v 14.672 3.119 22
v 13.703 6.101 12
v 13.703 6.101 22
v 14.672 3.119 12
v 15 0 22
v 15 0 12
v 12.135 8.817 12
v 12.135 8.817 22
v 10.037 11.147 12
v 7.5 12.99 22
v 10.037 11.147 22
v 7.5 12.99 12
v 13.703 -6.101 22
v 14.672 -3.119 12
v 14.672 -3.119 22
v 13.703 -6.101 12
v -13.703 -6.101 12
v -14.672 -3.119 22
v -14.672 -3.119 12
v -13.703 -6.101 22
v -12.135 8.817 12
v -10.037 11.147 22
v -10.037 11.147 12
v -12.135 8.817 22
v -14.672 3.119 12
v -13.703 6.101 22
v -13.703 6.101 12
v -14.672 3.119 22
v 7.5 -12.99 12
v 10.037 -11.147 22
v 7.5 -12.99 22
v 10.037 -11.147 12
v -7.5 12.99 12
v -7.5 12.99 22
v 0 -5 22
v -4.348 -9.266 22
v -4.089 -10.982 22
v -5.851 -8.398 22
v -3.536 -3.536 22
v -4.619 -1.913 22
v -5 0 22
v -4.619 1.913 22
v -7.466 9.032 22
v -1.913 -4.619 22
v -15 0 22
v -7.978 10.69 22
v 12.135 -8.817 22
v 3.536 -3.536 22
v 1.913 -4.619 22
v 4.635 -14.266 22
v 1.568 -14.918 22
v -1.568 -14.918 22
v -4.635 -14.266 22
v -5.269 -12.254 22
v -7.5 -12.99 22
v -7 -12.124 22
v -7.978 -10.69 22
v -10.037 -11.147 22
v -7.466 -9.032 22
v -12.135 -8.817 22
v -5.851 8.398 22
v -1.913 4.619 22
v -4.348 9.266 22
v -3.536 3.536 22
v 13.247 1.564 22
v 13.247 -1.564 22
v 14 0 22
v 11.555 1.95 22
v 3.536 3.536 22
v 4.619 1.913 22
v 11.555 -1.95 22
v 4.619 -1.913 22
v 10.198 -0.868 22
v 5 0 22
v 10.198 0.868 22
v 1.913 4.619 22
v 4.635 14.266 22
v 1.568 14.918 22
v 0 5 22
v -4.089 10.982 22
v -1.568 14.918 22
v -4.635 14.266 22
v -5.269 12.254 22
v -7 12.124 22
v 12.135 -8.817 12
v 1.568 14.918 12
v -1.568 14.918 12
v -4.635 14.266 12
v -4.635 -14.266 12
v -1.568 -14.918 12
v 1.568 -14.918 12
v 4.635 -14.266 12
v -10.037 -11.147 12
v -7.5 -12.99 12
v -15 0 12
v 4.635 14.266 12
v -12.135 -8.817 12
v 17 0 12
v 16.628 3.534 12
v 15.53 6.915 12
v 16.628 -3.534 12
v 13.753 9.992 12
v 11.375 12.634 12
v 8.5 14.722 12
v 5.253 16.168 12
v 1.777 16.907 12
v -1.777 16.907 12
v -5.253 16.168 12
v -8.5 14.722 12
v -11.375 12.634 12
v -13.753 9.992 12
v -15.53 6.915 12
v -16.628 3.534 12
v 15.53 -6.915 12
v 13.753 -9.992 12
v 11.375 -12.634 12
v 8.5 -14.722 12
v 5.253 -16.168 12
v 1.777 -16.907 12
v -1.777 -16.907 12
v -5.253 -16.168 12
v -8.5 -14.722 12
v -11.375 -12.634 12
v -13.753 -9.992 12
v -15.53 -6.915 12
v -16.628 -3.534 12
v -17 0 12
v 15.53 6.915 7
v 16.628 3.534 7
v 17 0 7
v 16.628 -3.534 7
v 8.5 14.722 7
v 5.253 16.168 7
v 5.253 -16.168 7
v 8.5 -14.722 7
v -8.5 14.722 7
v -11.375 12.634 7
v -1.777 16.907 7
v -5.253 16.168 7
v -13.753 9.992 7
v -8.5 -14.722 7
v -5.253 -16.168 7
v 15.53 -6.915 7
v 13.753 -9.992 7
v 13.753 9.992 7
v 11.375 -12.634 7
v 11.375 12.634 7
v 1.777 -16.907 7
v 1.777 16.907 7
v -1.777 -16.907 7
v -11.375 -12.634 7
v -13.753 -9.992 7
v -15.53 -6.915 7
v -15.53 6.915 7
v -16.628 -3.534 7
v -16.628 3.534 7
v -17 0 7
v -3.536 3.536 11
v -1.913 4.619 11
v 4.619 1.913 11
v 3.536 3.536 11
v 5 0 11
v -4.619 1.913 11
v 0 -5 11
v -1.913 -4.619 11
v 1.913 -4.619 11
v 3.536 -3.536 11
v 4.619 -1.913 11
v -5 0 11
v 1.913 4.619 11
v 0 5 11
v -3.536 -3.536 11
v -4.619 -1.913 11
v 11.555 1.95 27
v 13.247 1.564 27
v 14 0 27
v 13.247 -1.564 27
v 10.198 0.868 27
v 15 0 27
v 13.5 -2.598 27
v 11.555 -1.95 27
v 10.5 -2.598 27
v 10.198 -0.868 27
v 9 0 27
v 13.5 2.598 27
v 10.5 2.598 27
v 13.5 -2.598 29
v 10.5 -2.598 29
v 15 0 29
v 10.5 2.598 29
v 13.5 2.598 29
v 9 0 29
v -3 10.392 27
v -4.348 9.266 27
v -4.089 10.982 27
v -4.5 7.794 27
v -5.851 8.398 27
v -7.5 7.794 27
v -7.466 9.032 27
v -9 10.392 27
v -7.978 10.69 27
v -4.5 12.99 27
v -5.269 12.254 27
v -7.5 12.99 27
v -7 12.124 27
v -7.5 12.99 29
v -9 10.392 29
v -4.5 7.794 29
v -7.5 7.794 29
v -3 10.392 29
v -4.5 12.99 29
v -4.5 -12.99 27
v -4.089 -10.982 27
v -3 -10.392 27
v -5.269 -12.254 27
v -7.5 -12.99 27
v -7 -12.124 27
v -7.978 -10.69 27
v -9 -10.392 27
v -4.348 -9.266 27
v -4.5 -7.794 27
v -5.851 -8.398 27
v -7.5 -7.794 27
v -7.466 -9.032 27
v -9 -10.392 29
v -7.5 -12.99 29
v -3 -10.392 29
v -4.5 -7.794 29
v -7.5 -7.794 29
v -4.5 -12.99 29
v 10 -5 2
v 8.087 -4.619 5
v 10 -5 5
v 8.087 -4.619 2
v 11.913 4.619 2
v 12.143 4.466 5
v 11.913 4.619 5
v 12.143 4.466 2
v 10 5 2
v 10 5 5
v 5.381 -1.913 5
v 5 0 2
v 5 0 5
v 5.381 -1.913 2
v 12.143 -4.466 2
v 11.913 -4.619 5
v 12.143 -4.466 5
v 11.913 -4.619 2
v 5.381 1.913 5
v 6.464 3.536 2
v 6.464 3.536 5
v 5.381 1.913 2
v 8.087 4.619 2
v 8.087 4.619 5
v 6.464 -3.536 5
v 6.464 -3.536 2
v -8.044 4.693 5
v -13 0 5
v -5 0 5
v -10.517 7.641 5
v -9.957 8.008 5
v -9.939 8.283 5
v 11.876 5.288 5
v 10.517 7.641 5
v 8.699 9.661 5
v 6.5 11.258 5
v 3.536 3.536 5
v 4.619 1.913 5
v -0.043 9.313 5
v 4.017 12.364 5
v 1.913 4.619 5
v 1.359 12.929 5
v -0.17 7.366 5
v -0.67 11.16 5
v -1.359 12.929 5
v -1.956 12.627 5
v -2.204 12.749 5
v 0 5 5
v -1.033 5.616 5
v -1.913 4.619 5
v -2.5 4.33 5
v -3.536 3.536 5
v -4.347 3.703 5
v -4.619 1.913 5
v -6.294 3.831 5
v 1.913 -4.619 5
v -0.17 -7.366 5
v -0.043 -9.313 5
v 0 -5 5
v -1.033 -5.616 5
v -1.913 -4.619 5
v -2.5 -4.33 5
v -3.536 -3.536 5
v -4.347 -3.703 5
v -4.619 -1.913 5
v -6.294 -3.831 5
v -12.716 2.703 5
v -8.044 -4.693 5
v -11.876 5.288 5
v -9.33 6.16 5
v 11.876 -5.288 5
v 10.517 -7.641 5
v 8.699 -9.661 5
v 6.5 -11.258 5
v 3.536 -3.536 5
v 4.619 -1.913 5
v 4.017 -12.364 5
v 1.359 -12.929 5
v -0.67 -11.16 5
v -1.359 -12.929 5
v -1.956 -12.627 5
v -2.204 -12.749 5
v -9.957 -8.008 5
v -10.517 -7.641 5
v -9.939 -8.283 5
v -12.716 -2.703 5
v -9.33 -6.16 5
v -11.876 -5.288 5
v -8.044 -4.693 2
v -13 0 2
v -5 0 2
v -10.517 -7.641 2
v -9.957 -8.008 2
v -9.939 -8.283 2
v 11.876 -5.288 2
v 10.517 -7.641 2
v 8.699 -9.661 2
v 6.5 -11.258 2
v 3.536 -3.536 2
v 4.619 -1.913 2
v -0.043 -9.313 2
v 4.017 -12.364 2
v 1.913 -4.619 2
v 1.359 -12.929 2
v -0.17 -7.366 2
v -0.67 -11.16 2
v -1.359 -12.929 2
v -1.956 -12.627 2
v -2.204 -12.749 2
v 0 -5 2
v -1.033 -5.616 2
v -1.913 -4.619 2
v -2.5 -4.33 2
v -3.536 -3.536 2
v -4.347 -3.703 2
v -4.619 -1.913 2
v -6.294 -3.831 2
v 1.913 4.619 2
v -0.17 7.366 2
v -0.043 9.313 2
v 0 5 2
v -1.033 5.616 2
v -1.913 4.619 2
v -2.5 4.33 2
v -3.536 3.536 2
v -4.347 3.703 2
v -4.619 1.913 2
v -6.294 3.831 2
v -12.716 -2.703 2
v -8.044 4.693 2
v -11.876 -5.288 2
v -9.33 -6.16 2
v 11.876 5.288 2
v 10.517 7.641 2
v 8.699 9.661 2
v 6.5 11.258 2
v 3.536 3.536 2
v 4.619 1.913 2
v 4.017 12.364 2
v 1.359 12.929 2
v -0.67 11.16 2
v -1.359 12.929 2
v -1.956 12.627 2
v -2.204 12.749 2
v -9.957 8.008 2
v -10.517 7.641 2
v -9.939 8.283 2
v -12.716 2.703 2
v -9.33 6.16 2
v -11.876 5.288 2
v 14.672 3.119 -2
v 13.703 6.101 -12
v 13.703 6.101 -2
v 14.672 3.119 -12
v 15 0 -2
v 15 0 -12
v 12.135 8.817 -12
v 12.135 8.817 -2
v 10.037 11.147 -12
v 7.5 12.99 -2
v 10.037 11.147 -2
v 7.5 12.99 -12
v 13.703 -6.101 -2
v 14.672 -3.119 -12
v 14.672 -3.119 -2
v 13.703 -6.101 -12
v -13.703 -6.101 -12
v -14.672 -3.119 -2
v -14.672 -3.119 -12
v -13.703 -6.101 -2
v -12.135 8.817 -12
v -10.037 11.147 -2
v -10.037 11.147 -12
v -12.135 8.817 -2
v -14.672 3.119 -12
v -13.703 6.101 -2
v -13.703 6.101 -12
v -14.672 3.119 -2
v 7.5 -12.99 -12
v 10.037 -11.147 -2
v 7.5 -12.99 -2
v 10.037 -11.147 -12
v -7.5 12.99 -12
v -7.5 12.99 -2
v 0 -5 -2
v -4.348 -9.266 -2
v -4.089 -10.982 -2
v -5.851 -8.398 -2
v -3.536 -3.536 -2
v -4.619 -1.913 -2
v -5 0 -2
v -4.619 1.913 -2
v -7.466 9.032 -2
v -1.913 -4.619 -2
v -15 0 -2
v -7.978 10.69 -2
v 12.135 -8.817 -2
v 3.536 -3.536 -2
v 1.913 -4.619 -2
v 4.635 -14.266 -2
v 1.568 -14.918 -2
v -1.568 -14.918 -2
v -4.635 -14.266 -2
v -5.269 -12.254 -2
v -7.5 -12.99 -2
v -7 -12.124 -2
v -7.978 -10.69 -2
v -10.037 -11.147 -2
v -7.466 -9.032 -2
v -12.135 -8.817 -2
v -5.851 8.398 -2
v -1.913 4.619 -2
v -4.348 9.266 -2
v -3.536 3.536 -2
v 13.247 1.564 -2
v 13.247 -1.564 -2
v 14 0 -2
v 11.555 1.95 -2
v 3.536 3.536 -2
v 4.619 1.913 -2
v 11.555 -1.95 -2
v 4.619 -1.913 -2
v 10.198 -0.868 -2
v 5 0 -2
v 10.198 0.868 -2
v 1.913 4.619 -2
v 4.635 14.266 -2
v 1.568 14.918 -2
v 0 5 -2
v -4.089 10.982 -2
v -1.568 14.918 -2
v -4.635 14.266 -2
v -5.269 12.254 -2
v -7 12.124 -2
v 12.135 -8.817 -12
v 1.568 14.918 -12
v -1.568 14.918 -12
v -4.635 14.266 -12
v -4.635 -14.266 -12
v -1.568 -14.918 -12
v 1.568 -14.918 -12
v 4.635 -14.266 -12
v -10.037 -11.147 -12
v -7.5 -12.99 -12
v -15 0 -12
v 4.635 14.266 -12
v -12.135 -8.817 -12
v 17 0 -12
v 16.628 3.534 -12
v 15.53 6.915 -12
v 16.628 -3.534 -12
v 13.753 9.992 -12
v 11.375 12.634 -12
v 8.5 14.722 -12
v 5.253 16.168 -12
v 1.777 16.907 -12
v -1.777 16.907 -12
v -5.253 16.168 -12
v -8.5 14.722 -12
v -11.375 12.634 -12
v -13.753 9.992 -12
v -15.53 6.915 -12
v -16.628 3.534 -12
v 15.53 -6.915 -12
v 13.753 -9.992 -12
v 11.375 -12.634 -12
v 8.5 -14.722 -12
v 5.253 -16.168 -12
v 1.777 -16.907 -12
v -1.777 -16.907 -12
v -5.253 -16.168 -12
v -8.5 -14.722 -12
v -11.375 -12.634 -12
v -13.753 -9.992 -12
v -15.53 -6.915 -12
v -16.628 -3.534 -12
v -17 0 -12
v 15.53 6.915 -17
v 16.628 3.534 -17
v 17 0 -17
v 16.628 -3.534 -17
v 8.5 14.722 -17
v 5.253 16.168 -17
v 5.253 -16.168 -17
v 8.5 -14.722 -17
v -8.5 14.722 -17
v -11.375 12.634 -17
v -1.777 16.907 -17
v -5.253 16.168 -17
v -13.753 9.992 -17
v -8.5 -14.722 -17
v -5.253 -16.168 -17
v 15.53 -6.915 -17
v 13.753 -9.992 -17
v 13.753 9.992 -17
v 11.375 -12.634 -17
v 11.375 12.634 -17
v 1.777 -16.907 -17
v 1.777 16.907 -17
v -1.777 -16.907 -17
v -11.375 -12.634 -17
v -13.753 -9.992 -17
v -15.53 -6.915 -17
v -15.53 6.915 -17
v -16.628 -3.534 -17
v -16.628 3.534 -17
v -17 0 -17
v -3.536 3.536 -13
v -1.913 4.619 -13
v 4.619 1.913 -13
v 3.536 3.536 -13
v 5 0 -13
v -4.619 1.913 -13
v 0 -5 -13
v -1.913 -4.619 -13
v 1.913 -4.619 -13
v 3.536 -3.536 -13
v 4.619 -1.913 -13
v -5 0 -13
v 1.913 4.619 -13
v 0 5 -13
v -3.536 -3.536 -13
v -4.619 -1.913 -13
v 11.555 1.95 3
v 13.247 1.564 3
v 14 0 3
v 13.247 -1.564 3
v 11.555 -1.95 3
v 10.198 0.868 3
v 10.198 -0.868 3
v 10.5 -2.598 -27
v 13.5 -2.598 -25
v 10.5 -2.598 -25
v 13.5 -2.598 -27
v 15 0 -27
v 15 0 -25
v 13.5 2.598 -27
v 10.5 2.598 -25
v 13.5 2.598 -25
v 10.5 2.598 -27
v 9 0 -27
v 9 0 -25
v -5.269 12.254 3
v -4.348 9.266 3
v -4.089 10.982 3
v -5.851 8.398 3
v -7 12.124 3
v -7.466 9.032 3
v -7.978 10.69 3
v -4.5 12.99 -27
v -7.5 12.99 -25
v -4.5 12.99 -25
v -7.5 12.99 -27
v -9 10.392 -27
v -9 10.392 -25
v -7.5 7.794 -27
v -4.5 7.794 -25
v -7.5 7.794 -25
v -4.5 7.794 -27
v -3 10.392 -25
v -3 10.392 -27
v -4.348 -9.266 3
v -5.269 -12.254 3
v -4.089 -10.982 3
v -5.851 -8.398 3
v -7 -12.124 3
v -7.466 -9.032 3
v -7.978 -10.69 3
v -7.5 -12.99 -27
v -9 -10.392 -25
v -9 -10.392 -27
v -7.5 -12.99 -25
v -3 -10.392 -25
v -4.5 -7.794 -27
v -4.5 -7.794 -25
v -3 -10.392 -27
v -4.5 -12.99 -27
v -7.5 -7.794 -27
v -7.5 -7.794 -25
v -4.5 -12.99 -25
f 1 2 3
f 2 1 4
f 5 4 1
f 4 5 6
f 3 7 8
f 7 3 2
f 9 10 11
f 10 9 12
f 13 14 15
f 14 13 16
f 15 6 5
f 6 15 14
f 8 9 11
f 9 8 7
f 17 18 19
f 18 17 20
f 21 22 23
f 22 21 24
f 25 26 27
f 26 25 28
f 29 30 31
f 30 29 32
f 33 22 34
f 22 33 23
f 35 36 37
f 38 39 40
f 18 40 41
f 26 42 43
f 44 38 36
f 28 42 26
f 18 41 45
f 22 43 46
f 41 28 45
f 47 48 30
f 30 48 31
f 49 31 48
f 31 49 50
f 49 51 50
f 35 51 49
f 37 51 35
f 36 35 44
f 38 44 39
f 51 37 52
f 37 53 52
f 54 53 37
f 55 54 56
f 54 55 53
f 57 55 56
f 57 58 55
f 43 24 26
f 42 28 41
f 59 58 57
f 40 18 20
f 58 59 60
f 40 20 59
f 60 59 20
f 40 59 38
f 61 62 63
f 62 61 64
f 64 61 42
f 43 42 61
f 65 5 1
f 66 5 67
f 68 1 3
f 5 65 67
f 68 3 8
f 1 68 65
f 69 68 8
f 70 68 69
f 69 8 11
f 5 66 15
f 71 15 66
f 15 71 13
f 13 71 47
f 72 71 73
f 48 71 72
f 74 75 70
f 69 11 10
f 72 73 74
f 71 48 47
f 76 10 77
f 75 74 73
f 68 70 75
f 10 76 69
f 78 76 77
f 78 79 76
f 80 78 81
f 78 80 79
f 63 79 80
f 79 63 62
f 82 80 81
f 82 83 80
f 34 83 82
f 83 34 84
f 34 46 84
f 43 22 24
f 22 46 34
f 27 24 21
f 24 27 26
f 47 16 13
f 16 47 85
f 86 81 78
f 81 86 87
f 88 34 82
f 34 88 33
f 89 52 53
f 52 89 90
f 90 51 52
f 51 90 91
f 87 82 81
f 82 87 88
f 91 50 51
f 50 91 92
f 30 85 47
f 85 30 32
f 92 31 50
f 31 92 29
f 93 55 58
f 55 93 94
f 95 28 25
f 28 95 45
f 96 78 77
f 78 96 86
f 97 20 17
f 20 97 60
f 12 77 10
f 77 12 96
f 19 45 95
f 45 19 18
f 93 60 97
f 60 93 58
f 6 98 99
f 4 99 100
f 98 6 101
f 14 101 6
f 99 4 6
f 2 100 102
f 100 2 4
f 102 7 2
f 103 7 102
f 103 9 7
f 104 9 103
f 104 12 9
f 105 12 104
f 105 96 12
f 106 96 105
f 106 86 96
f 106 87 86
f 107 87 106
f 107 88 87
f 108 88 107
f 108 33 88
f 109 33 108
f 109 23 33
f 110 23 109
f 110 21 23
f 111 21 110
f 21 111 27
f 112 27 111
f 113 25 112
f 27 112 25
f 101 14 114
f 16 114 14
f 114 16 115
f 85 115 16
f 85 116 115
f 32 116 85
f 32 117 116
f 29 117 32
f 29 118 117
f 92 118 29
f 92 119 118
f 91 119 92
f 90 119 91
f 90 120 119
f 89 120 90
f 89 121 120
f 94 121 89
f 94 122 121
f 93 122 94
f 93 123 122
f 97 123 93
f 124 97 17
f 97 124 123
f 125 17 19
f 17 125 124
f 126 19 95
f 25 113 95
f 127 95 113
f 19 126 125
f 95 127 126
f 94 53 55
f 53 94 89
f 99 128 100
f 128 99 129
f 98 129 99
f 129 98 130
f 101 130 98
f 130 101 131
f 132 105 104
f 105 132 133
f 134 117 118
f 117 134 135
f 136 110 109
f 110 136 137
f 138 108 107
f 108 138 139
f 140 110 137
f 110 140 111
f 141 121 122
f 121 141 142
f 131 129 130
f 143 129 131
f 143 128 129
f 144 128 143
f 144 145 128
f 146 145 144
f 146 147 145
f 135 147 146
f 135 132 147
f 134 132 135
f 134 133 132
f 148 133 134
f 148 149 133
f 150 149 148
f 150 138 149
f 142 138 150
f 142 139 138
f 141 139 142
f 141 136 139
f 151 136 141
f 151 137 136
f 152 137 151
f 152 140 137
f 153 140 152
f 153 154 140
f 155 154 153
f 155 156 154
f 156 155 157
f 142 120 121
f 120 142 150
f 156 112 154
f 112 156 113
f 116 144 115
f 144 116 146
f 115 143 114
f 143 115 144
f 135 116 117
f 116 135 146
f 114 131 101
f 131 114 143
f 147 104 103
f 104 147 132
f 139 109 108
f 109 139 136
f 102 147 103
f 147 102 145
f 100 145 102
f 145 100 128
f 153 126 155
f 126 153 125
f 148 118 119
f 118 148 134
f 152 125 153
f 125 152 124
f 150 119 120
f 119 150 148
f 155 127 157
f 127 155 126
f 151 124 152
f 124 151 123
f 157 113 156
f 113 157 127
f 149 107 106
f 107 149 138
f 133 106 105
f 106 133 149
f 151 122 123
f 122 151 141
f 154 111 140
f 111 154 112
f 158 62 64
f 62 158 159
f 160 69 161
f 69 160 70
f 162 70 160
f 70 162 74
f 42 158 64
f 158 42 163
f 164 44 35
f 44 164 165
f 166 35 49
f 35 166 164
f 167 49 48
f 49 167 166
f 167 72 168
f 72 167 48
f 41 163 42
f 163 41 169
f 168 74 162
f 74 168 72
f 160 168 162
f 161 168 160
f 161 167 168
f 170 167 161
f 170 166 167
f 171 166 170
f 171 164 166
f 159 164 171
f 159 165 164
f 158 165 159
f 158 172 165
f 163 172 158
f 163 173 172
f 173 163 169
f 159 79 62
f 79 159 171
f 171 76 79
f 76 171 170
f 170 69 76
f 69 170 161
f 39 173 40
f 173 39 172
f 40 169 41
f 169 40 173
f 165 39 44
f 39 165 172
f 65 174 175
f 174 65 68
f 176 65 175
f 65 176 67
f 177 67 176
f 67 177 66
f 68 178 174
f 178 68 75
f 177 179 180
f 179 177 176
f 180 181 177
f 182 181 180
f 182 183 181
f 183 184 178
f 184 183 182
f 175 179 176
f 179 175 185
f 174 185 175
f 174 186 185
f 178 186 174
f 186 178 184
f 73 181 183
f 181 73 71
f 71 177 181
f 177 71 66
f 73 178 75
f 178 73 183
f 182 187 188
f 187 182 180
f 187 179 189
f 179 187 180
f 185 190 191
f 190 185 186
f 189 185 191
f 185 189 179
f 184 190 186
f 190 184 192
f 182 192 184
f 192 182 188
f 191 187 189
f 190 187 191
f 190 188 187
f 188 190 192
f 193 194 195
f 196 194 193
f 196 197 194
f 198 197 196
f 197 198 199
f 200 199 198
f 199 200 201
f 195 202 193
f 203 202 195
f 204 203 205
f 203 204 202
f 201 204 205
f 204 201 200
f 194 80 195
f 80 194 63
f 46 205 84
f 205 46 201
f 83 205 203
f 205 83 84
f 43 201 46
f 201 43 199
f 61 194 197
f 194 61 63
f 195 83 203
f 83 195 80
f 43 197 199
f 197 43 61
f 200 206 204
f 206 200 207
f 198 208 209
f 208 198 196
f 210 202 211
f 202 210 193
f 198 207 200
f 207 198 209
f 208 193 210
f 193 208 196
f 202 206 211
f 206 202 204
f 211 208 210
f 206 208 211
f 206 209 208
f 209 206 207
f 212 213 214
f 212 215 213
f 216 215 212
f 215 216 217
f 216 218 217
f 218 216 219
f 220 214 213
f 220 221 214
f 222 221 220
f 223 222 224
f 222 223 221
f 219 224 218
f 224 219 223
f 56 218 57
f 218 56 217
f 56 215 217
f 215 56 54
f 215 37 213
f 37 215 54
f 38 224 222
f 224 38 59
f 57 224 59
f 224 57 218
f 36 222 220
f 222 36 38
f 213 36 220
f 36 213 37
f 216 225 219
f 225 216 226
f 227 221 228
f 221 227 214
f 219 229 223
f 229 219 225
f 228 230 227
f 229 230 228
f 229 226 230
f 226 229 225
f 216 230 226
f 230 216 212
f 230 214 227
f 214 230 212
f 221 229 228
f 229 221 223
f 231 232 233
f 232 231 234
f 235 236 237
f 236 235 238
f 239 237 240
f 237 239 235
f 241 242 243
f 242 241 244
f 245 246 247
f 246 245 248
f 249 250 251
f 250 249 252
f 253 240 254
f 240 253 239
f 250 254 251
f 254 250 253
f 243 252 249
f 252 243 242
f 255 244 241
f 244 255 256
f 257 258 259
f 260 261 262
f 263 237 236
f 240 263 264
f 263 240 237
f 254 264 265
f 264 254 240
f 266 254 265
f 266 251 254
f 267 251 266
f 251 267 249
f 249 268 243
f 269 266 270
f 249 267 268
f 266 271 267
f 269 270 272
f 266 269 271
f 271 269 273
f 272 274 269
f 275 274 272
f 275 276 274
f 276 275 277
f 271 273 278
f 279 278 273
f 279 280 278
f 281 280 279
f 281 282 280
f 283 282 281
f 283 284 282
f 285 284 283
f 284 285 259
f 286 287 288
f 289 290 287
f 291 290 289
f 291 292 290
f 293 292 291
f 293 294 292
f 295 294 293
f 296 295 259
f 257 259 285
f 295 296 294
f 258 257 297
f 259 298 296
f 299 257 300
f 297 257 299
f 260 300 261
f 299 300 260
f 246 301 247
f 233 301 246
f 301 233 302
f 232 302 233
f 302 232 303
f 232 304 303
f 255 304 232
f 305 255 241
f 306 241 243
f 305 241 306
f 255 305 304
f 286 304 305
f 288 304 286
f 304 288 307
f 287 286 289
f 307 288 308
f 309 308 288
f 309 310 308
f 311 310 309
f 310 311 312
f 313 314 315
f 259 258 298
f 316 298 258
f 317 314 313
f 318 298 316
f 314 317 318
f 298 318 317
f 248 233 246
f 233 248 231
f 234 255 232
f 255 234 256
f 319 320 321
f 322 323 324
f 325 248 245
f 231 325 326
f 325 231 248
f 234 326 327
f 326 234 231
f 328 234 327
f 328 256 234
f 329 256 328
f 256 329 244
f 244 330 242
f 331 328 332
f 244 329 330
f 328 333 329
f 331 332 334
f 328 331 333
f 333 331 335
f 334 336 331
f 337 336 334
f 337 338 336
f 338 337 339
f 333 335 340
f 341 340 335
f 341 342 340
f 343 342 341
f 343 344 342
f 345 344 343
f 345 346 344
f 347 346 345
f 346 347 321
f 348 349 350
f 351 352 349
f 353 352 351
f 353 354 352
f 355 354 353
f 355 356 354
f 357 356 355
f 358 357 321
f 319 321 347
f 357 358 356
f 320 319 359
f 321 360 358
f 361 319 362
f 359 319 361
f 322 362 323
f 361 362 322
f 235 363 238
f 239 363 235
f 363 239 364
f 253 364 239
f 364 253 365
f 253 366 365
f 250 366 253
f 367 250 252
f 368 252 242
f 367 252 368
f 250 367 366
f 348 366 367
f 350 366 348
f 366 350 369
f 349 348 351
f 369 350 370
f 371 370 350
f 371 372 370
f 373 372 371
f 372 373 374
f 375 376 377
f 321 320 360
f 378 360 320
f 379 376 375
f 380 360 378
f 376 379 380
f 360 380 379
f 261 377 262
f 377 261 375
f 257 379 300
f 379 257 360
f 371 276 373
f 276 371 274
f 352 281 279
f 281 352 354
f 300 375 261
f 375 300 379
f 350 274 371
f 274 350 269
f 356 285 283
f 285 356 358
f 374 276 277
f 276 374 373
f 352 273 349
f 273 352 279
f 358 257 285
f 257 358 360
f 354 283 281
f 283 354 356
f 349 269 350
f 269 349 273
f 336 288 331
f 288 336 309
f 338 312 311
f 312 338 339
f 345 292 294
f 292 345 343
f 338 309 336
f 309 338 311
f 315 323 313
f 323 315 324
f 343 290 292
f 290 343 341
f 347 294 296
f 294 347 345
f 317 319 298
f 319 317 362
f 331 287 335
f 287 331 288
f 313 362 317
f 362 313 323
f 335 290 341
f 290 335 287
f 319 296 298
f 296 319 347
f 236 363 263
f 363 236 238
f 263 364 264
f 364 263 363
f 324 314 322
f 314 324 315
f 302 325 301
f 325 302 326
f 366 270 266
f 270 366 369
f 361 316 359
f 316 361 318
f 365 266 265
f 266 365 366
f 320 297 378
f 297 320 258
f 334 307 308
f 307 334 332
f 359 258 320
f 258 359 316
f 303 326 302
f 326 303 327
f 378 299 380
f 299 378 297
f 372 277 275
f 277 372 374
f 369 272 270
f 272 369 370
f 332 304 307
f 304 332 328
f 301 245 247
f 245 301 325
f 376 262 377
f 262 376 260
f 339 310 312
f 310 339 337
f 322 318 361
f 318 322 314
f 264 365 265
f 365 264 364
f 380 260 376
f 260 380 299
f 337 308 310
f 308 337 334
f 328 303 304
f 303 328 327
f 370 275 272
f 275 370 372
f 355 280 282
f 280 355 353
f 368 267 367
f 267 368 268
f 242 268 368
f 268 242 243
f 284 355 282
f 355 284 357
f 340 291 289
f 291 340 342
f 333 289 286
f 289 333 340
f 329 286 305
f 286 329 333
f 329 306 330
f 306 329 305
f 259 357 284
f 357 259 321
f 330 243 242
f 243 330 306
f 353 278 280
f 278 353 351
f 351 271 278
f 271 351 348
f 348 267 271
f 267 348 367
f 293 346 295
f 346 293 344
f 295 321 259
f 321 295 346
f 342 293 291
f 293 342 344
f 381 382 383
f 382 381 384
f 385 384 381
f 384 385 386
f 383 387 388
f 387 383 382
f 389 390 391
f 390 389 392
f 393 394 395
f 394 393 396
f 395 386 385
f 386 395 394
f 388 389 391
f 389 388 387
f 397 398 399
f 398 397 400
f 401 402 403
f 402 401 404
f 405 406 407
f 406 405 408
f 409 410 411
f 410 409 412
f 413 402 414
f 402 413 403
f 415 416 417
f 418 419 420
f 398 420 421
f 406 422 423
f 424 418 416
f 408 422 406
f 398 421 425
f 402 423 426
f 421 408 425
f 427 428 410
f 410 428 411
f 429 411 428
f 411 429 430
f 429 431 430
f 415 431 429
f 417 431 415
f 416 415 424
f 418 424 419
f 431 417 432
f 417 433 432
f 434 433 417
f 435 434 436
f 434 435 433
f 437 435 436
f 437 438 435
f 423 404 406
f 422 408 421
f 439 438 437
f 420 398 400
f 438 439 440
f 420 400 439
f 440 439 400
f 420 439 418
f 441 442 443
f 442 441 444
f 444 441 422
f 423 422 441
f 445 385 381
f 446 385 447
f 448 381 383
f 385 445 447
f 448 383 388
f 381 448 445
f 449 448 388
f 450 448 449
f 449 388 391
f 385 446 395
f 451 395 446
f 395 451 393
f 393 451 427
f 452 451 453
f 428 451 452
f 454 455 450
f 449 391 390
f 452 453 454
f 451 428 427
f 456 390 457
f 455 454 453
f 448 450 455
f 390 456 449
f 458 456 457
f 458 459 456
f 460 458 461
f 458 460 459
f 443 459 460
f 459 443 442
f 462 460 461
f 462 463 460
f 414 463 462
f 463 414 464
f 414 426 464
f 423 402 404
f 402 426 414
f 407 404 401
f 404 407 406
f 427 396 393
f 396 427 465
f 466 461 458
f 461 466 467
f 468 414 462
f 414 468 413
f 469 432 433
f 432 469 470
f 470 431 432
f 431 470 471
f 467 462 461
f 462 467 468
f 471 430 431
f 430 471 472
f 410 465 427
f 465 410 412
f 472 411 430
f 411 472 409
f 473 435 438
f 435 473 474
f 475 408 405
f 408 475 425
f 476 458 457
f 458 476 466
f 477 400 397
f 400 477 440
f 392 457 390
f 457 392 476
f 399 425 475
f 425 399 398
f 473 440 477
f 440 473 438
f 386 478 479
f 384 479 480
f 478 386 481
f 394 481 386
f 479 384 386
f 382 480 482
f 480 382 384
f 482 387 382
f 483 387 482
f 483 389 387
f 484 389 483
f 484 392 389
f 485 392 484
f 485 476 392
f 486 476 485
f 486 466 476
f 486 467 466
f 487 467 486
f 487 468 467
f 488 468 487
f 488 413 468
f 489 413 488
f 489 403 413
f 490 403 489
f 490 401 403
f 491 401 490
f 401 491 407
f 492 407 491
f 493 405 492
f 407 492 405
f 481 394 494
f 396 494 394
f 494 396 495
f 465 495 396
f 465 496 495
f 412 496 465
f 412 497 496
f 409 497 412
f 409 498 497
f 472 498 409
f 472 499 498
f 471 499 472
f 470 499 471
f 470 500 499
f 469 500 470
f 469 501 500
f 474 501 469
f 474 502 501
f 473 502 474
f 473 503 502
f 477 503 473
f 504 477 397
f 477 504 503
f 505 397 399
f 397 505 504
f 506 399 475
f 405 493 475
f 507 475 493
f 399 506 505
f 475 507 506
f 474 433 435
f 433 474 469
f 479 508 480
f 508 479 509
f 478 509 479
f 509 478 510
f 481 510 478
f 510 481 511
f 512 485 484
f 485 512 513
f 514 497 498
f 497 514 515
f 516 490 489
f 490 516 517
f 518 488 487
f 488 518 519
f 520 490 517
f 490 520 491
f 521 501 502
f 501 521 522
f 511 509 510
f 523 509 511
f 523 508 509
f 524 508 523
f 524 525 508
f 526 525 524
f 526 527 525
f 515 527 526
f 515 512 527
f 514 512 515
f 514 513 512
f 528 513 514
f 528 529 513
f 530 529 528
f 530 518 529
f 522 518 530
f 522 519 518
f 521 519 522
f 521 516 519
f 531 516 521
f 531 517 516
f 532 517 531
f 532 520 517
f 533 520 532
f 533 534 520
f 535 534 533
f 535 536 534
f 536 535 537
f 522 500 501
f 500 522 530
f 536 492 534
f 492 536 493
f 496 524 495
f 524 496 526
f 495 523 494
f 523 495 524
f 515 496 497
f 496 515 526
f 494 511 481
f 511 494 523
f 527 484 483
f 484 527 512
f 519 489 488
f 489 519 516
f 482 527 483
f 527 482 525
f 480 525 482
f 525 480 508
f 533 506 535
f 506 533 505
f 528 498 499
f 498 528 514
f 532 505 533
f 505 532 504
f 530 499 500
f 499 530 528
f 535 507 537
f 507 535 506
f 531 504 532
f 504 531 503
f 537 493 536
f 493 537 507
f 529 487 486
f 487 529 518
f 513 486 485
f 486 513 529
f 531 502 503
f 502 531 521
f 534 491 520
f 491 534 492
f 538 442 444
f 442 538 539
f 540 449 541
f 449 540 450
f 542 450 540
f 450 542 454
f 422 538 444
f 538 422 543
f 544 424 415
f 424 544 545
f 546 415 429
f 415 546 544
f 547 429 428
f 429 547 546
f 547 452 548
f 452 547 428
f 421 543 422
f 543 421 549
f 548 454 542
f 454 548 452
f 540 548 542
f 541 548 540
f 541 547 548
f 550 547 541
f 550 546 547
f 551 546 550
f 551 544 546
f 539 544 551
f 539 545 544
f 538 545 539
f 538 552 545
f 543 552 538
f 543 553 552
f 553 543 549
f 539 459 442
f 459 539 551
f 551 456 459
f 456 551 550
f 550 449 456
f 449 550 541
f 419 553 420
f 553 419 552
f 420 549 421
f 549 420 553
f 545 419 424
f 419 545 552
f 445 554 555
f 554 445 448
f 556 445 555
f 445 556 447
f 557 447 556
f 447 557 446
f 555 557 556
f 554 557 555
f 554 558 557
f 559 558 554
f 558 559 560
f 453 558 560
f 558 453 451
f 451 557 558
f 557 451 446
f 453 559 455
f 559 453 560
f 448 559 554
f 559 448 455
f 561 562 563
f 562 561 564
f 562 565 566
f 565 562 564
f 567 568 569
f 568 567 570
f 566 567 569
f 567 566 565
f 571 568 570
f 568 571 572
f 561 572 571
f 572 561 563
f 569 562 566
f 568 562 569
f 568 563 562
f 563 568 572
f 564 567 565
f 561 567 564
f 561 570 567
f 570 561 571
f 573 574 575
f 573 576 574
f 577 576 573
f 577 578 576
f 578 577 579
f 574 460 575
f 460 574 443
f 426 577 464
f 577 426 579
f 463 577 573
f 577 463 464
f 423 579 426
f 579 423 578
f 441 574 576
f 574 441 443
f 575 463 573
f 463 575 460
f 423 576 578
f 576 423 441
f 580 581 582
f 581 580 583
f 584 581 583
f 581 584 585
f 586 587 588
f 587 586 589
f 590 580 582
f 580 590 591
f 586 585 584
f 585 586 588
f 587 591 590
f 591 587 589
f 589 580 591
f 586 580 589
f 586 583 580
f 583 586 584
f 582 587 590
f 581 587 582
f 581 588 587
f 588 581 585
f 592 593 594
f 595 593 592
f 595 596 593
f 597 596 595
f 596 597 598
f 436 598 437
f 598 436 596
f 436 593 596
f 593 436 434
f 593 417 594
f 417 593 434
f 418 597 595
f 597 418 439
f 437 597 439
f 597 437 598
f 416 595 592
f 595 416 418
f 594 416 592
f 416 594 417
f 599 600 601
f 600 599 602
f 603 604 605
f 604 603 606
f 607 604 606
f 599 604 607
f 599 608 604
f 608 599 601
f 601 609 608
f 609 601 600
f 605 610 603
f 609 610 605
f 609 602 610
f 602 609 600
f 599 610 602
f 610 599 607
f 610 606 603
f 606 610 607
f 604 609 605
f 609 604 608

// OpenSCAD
// Parameters
clamp_radius = 15;
clamp_length = 10;
clamp_thickness = 5;
bolt_hole_radius = 2;
shaft_hole_radius = 5;
bolt_radius = 2;
bolt_length = 15;
nut_radius = 3;
nut_thickness = 2;
flexible_element_thickness = 3;
flexible_element_gap = 2;
cutout_depth = 3;
cutout_radius = 5;

// Function to create a clamp half with cutouts
module clamp_half() {
    difference() {
        union() {
            cylinder(h = clamp_length, r = clamp_radius);
            translate([0, 0, -clamp_thickness])
                cylinder(h = clamp_thickness, r = clamp_radius + 2);
        }
        // Shaft hole
        translate([0, 0, -1])
            cylinder(h = clamp_length + 2, r = shaft_hole_radius);
        // Bolt holes
        for (i = [0:120:360]) {
            rotate([0, 0, i])
                translate([clamp_radius - 3, 0, clamp_length / 2])
                    cylinder(h = clamp_length + 2, r = bolt_hole_radius);
        }
        // Curved cutouts for flexibility
        for (i = [0:120:360]) {
            rotate([0, 0, i])
                translate([clamp_radius - cutout_radius, 0, clamp_length / 2])
                    cylinder(h = clamp_length + 2, r = cutout_radius);
        }
    }
}

// Function to create a flexible element with more defined curvature
module flexible_element() {
    difference() {
        cylinder(h = flexible_element_thickness, r = clamp_radius - 2);
        translate([0, 0, -1])
            cylinder(h = flexible_element_thickness + 2, r = shaft_hole_radius);
        // Adding curved recesses for flexibility
        for (i = [0:120:360]) {
            rotate([0, 0, i])
                translate([clamp_radius - cutout_radius, 0, 0])
                    cylinder(h = flexible_element_thickness, r = cutout_radius);
        }
    }
}

// Function to create a bolt
module bolt() {
    cylinder(h = bolt_length, r = bolt_radius);
}

// Function to create a nut
module nut() {
    cylinder(h = nut_thickness, r = nut_radius, $fn = 6);
}

// Assembly
module coupling() {
    // Top clamp halves
    translate([0, 0, clamp_length + flexible_element_gap])
        clamp_half();
    mirror([1, 0, 0])
        translate([0, 0, clamp_length + flexible_element_gap])
            clamp_half();
    
    // Bolts and nuts (top layer)
    for (i = [0:120:360]) {
        rotate([0, 0, i])
            translate([clamp_radius - 3, 0, clamp_length + flexible_element_gap])
                bolt();
        rotate([0, 0, i])
            translate([clamp_radius - 3, 0, clamp_length + flexible_element_gap + bolt_length])
                nut();
    }

    // Flexible element (top)
    translate([0, 0, flexible_element_gap])
        flexible_element();

    // Bottom clamp halves
    translate([0, 0, -clamp_length - flexible_element_gap])
        clamp_half();
    mirror([1, 0, 0])
        translate([0, 0, -clamp_length - flexible_element_gap])
            clamp_half();

    // Bolts and nuts (bottom layer)
    for (i = [0:120:360]) {
        rotate([0, 0, i])
            translate([clamp_radius - 3, 0, -clamp_length - flexible_element_gap])
                bolt();
        rotate([0, 0, i])
            translate([clamp_radius - 3, 0, -clamp_length - flexible_element_gap - bolt_length])
                nut();
    }

    // Flexible element (bottom)
    translate([0, 0, -clamp_length - 2 * flexible_element_gap])
        flexible_element();
}

// Render the coupling
coupling();
